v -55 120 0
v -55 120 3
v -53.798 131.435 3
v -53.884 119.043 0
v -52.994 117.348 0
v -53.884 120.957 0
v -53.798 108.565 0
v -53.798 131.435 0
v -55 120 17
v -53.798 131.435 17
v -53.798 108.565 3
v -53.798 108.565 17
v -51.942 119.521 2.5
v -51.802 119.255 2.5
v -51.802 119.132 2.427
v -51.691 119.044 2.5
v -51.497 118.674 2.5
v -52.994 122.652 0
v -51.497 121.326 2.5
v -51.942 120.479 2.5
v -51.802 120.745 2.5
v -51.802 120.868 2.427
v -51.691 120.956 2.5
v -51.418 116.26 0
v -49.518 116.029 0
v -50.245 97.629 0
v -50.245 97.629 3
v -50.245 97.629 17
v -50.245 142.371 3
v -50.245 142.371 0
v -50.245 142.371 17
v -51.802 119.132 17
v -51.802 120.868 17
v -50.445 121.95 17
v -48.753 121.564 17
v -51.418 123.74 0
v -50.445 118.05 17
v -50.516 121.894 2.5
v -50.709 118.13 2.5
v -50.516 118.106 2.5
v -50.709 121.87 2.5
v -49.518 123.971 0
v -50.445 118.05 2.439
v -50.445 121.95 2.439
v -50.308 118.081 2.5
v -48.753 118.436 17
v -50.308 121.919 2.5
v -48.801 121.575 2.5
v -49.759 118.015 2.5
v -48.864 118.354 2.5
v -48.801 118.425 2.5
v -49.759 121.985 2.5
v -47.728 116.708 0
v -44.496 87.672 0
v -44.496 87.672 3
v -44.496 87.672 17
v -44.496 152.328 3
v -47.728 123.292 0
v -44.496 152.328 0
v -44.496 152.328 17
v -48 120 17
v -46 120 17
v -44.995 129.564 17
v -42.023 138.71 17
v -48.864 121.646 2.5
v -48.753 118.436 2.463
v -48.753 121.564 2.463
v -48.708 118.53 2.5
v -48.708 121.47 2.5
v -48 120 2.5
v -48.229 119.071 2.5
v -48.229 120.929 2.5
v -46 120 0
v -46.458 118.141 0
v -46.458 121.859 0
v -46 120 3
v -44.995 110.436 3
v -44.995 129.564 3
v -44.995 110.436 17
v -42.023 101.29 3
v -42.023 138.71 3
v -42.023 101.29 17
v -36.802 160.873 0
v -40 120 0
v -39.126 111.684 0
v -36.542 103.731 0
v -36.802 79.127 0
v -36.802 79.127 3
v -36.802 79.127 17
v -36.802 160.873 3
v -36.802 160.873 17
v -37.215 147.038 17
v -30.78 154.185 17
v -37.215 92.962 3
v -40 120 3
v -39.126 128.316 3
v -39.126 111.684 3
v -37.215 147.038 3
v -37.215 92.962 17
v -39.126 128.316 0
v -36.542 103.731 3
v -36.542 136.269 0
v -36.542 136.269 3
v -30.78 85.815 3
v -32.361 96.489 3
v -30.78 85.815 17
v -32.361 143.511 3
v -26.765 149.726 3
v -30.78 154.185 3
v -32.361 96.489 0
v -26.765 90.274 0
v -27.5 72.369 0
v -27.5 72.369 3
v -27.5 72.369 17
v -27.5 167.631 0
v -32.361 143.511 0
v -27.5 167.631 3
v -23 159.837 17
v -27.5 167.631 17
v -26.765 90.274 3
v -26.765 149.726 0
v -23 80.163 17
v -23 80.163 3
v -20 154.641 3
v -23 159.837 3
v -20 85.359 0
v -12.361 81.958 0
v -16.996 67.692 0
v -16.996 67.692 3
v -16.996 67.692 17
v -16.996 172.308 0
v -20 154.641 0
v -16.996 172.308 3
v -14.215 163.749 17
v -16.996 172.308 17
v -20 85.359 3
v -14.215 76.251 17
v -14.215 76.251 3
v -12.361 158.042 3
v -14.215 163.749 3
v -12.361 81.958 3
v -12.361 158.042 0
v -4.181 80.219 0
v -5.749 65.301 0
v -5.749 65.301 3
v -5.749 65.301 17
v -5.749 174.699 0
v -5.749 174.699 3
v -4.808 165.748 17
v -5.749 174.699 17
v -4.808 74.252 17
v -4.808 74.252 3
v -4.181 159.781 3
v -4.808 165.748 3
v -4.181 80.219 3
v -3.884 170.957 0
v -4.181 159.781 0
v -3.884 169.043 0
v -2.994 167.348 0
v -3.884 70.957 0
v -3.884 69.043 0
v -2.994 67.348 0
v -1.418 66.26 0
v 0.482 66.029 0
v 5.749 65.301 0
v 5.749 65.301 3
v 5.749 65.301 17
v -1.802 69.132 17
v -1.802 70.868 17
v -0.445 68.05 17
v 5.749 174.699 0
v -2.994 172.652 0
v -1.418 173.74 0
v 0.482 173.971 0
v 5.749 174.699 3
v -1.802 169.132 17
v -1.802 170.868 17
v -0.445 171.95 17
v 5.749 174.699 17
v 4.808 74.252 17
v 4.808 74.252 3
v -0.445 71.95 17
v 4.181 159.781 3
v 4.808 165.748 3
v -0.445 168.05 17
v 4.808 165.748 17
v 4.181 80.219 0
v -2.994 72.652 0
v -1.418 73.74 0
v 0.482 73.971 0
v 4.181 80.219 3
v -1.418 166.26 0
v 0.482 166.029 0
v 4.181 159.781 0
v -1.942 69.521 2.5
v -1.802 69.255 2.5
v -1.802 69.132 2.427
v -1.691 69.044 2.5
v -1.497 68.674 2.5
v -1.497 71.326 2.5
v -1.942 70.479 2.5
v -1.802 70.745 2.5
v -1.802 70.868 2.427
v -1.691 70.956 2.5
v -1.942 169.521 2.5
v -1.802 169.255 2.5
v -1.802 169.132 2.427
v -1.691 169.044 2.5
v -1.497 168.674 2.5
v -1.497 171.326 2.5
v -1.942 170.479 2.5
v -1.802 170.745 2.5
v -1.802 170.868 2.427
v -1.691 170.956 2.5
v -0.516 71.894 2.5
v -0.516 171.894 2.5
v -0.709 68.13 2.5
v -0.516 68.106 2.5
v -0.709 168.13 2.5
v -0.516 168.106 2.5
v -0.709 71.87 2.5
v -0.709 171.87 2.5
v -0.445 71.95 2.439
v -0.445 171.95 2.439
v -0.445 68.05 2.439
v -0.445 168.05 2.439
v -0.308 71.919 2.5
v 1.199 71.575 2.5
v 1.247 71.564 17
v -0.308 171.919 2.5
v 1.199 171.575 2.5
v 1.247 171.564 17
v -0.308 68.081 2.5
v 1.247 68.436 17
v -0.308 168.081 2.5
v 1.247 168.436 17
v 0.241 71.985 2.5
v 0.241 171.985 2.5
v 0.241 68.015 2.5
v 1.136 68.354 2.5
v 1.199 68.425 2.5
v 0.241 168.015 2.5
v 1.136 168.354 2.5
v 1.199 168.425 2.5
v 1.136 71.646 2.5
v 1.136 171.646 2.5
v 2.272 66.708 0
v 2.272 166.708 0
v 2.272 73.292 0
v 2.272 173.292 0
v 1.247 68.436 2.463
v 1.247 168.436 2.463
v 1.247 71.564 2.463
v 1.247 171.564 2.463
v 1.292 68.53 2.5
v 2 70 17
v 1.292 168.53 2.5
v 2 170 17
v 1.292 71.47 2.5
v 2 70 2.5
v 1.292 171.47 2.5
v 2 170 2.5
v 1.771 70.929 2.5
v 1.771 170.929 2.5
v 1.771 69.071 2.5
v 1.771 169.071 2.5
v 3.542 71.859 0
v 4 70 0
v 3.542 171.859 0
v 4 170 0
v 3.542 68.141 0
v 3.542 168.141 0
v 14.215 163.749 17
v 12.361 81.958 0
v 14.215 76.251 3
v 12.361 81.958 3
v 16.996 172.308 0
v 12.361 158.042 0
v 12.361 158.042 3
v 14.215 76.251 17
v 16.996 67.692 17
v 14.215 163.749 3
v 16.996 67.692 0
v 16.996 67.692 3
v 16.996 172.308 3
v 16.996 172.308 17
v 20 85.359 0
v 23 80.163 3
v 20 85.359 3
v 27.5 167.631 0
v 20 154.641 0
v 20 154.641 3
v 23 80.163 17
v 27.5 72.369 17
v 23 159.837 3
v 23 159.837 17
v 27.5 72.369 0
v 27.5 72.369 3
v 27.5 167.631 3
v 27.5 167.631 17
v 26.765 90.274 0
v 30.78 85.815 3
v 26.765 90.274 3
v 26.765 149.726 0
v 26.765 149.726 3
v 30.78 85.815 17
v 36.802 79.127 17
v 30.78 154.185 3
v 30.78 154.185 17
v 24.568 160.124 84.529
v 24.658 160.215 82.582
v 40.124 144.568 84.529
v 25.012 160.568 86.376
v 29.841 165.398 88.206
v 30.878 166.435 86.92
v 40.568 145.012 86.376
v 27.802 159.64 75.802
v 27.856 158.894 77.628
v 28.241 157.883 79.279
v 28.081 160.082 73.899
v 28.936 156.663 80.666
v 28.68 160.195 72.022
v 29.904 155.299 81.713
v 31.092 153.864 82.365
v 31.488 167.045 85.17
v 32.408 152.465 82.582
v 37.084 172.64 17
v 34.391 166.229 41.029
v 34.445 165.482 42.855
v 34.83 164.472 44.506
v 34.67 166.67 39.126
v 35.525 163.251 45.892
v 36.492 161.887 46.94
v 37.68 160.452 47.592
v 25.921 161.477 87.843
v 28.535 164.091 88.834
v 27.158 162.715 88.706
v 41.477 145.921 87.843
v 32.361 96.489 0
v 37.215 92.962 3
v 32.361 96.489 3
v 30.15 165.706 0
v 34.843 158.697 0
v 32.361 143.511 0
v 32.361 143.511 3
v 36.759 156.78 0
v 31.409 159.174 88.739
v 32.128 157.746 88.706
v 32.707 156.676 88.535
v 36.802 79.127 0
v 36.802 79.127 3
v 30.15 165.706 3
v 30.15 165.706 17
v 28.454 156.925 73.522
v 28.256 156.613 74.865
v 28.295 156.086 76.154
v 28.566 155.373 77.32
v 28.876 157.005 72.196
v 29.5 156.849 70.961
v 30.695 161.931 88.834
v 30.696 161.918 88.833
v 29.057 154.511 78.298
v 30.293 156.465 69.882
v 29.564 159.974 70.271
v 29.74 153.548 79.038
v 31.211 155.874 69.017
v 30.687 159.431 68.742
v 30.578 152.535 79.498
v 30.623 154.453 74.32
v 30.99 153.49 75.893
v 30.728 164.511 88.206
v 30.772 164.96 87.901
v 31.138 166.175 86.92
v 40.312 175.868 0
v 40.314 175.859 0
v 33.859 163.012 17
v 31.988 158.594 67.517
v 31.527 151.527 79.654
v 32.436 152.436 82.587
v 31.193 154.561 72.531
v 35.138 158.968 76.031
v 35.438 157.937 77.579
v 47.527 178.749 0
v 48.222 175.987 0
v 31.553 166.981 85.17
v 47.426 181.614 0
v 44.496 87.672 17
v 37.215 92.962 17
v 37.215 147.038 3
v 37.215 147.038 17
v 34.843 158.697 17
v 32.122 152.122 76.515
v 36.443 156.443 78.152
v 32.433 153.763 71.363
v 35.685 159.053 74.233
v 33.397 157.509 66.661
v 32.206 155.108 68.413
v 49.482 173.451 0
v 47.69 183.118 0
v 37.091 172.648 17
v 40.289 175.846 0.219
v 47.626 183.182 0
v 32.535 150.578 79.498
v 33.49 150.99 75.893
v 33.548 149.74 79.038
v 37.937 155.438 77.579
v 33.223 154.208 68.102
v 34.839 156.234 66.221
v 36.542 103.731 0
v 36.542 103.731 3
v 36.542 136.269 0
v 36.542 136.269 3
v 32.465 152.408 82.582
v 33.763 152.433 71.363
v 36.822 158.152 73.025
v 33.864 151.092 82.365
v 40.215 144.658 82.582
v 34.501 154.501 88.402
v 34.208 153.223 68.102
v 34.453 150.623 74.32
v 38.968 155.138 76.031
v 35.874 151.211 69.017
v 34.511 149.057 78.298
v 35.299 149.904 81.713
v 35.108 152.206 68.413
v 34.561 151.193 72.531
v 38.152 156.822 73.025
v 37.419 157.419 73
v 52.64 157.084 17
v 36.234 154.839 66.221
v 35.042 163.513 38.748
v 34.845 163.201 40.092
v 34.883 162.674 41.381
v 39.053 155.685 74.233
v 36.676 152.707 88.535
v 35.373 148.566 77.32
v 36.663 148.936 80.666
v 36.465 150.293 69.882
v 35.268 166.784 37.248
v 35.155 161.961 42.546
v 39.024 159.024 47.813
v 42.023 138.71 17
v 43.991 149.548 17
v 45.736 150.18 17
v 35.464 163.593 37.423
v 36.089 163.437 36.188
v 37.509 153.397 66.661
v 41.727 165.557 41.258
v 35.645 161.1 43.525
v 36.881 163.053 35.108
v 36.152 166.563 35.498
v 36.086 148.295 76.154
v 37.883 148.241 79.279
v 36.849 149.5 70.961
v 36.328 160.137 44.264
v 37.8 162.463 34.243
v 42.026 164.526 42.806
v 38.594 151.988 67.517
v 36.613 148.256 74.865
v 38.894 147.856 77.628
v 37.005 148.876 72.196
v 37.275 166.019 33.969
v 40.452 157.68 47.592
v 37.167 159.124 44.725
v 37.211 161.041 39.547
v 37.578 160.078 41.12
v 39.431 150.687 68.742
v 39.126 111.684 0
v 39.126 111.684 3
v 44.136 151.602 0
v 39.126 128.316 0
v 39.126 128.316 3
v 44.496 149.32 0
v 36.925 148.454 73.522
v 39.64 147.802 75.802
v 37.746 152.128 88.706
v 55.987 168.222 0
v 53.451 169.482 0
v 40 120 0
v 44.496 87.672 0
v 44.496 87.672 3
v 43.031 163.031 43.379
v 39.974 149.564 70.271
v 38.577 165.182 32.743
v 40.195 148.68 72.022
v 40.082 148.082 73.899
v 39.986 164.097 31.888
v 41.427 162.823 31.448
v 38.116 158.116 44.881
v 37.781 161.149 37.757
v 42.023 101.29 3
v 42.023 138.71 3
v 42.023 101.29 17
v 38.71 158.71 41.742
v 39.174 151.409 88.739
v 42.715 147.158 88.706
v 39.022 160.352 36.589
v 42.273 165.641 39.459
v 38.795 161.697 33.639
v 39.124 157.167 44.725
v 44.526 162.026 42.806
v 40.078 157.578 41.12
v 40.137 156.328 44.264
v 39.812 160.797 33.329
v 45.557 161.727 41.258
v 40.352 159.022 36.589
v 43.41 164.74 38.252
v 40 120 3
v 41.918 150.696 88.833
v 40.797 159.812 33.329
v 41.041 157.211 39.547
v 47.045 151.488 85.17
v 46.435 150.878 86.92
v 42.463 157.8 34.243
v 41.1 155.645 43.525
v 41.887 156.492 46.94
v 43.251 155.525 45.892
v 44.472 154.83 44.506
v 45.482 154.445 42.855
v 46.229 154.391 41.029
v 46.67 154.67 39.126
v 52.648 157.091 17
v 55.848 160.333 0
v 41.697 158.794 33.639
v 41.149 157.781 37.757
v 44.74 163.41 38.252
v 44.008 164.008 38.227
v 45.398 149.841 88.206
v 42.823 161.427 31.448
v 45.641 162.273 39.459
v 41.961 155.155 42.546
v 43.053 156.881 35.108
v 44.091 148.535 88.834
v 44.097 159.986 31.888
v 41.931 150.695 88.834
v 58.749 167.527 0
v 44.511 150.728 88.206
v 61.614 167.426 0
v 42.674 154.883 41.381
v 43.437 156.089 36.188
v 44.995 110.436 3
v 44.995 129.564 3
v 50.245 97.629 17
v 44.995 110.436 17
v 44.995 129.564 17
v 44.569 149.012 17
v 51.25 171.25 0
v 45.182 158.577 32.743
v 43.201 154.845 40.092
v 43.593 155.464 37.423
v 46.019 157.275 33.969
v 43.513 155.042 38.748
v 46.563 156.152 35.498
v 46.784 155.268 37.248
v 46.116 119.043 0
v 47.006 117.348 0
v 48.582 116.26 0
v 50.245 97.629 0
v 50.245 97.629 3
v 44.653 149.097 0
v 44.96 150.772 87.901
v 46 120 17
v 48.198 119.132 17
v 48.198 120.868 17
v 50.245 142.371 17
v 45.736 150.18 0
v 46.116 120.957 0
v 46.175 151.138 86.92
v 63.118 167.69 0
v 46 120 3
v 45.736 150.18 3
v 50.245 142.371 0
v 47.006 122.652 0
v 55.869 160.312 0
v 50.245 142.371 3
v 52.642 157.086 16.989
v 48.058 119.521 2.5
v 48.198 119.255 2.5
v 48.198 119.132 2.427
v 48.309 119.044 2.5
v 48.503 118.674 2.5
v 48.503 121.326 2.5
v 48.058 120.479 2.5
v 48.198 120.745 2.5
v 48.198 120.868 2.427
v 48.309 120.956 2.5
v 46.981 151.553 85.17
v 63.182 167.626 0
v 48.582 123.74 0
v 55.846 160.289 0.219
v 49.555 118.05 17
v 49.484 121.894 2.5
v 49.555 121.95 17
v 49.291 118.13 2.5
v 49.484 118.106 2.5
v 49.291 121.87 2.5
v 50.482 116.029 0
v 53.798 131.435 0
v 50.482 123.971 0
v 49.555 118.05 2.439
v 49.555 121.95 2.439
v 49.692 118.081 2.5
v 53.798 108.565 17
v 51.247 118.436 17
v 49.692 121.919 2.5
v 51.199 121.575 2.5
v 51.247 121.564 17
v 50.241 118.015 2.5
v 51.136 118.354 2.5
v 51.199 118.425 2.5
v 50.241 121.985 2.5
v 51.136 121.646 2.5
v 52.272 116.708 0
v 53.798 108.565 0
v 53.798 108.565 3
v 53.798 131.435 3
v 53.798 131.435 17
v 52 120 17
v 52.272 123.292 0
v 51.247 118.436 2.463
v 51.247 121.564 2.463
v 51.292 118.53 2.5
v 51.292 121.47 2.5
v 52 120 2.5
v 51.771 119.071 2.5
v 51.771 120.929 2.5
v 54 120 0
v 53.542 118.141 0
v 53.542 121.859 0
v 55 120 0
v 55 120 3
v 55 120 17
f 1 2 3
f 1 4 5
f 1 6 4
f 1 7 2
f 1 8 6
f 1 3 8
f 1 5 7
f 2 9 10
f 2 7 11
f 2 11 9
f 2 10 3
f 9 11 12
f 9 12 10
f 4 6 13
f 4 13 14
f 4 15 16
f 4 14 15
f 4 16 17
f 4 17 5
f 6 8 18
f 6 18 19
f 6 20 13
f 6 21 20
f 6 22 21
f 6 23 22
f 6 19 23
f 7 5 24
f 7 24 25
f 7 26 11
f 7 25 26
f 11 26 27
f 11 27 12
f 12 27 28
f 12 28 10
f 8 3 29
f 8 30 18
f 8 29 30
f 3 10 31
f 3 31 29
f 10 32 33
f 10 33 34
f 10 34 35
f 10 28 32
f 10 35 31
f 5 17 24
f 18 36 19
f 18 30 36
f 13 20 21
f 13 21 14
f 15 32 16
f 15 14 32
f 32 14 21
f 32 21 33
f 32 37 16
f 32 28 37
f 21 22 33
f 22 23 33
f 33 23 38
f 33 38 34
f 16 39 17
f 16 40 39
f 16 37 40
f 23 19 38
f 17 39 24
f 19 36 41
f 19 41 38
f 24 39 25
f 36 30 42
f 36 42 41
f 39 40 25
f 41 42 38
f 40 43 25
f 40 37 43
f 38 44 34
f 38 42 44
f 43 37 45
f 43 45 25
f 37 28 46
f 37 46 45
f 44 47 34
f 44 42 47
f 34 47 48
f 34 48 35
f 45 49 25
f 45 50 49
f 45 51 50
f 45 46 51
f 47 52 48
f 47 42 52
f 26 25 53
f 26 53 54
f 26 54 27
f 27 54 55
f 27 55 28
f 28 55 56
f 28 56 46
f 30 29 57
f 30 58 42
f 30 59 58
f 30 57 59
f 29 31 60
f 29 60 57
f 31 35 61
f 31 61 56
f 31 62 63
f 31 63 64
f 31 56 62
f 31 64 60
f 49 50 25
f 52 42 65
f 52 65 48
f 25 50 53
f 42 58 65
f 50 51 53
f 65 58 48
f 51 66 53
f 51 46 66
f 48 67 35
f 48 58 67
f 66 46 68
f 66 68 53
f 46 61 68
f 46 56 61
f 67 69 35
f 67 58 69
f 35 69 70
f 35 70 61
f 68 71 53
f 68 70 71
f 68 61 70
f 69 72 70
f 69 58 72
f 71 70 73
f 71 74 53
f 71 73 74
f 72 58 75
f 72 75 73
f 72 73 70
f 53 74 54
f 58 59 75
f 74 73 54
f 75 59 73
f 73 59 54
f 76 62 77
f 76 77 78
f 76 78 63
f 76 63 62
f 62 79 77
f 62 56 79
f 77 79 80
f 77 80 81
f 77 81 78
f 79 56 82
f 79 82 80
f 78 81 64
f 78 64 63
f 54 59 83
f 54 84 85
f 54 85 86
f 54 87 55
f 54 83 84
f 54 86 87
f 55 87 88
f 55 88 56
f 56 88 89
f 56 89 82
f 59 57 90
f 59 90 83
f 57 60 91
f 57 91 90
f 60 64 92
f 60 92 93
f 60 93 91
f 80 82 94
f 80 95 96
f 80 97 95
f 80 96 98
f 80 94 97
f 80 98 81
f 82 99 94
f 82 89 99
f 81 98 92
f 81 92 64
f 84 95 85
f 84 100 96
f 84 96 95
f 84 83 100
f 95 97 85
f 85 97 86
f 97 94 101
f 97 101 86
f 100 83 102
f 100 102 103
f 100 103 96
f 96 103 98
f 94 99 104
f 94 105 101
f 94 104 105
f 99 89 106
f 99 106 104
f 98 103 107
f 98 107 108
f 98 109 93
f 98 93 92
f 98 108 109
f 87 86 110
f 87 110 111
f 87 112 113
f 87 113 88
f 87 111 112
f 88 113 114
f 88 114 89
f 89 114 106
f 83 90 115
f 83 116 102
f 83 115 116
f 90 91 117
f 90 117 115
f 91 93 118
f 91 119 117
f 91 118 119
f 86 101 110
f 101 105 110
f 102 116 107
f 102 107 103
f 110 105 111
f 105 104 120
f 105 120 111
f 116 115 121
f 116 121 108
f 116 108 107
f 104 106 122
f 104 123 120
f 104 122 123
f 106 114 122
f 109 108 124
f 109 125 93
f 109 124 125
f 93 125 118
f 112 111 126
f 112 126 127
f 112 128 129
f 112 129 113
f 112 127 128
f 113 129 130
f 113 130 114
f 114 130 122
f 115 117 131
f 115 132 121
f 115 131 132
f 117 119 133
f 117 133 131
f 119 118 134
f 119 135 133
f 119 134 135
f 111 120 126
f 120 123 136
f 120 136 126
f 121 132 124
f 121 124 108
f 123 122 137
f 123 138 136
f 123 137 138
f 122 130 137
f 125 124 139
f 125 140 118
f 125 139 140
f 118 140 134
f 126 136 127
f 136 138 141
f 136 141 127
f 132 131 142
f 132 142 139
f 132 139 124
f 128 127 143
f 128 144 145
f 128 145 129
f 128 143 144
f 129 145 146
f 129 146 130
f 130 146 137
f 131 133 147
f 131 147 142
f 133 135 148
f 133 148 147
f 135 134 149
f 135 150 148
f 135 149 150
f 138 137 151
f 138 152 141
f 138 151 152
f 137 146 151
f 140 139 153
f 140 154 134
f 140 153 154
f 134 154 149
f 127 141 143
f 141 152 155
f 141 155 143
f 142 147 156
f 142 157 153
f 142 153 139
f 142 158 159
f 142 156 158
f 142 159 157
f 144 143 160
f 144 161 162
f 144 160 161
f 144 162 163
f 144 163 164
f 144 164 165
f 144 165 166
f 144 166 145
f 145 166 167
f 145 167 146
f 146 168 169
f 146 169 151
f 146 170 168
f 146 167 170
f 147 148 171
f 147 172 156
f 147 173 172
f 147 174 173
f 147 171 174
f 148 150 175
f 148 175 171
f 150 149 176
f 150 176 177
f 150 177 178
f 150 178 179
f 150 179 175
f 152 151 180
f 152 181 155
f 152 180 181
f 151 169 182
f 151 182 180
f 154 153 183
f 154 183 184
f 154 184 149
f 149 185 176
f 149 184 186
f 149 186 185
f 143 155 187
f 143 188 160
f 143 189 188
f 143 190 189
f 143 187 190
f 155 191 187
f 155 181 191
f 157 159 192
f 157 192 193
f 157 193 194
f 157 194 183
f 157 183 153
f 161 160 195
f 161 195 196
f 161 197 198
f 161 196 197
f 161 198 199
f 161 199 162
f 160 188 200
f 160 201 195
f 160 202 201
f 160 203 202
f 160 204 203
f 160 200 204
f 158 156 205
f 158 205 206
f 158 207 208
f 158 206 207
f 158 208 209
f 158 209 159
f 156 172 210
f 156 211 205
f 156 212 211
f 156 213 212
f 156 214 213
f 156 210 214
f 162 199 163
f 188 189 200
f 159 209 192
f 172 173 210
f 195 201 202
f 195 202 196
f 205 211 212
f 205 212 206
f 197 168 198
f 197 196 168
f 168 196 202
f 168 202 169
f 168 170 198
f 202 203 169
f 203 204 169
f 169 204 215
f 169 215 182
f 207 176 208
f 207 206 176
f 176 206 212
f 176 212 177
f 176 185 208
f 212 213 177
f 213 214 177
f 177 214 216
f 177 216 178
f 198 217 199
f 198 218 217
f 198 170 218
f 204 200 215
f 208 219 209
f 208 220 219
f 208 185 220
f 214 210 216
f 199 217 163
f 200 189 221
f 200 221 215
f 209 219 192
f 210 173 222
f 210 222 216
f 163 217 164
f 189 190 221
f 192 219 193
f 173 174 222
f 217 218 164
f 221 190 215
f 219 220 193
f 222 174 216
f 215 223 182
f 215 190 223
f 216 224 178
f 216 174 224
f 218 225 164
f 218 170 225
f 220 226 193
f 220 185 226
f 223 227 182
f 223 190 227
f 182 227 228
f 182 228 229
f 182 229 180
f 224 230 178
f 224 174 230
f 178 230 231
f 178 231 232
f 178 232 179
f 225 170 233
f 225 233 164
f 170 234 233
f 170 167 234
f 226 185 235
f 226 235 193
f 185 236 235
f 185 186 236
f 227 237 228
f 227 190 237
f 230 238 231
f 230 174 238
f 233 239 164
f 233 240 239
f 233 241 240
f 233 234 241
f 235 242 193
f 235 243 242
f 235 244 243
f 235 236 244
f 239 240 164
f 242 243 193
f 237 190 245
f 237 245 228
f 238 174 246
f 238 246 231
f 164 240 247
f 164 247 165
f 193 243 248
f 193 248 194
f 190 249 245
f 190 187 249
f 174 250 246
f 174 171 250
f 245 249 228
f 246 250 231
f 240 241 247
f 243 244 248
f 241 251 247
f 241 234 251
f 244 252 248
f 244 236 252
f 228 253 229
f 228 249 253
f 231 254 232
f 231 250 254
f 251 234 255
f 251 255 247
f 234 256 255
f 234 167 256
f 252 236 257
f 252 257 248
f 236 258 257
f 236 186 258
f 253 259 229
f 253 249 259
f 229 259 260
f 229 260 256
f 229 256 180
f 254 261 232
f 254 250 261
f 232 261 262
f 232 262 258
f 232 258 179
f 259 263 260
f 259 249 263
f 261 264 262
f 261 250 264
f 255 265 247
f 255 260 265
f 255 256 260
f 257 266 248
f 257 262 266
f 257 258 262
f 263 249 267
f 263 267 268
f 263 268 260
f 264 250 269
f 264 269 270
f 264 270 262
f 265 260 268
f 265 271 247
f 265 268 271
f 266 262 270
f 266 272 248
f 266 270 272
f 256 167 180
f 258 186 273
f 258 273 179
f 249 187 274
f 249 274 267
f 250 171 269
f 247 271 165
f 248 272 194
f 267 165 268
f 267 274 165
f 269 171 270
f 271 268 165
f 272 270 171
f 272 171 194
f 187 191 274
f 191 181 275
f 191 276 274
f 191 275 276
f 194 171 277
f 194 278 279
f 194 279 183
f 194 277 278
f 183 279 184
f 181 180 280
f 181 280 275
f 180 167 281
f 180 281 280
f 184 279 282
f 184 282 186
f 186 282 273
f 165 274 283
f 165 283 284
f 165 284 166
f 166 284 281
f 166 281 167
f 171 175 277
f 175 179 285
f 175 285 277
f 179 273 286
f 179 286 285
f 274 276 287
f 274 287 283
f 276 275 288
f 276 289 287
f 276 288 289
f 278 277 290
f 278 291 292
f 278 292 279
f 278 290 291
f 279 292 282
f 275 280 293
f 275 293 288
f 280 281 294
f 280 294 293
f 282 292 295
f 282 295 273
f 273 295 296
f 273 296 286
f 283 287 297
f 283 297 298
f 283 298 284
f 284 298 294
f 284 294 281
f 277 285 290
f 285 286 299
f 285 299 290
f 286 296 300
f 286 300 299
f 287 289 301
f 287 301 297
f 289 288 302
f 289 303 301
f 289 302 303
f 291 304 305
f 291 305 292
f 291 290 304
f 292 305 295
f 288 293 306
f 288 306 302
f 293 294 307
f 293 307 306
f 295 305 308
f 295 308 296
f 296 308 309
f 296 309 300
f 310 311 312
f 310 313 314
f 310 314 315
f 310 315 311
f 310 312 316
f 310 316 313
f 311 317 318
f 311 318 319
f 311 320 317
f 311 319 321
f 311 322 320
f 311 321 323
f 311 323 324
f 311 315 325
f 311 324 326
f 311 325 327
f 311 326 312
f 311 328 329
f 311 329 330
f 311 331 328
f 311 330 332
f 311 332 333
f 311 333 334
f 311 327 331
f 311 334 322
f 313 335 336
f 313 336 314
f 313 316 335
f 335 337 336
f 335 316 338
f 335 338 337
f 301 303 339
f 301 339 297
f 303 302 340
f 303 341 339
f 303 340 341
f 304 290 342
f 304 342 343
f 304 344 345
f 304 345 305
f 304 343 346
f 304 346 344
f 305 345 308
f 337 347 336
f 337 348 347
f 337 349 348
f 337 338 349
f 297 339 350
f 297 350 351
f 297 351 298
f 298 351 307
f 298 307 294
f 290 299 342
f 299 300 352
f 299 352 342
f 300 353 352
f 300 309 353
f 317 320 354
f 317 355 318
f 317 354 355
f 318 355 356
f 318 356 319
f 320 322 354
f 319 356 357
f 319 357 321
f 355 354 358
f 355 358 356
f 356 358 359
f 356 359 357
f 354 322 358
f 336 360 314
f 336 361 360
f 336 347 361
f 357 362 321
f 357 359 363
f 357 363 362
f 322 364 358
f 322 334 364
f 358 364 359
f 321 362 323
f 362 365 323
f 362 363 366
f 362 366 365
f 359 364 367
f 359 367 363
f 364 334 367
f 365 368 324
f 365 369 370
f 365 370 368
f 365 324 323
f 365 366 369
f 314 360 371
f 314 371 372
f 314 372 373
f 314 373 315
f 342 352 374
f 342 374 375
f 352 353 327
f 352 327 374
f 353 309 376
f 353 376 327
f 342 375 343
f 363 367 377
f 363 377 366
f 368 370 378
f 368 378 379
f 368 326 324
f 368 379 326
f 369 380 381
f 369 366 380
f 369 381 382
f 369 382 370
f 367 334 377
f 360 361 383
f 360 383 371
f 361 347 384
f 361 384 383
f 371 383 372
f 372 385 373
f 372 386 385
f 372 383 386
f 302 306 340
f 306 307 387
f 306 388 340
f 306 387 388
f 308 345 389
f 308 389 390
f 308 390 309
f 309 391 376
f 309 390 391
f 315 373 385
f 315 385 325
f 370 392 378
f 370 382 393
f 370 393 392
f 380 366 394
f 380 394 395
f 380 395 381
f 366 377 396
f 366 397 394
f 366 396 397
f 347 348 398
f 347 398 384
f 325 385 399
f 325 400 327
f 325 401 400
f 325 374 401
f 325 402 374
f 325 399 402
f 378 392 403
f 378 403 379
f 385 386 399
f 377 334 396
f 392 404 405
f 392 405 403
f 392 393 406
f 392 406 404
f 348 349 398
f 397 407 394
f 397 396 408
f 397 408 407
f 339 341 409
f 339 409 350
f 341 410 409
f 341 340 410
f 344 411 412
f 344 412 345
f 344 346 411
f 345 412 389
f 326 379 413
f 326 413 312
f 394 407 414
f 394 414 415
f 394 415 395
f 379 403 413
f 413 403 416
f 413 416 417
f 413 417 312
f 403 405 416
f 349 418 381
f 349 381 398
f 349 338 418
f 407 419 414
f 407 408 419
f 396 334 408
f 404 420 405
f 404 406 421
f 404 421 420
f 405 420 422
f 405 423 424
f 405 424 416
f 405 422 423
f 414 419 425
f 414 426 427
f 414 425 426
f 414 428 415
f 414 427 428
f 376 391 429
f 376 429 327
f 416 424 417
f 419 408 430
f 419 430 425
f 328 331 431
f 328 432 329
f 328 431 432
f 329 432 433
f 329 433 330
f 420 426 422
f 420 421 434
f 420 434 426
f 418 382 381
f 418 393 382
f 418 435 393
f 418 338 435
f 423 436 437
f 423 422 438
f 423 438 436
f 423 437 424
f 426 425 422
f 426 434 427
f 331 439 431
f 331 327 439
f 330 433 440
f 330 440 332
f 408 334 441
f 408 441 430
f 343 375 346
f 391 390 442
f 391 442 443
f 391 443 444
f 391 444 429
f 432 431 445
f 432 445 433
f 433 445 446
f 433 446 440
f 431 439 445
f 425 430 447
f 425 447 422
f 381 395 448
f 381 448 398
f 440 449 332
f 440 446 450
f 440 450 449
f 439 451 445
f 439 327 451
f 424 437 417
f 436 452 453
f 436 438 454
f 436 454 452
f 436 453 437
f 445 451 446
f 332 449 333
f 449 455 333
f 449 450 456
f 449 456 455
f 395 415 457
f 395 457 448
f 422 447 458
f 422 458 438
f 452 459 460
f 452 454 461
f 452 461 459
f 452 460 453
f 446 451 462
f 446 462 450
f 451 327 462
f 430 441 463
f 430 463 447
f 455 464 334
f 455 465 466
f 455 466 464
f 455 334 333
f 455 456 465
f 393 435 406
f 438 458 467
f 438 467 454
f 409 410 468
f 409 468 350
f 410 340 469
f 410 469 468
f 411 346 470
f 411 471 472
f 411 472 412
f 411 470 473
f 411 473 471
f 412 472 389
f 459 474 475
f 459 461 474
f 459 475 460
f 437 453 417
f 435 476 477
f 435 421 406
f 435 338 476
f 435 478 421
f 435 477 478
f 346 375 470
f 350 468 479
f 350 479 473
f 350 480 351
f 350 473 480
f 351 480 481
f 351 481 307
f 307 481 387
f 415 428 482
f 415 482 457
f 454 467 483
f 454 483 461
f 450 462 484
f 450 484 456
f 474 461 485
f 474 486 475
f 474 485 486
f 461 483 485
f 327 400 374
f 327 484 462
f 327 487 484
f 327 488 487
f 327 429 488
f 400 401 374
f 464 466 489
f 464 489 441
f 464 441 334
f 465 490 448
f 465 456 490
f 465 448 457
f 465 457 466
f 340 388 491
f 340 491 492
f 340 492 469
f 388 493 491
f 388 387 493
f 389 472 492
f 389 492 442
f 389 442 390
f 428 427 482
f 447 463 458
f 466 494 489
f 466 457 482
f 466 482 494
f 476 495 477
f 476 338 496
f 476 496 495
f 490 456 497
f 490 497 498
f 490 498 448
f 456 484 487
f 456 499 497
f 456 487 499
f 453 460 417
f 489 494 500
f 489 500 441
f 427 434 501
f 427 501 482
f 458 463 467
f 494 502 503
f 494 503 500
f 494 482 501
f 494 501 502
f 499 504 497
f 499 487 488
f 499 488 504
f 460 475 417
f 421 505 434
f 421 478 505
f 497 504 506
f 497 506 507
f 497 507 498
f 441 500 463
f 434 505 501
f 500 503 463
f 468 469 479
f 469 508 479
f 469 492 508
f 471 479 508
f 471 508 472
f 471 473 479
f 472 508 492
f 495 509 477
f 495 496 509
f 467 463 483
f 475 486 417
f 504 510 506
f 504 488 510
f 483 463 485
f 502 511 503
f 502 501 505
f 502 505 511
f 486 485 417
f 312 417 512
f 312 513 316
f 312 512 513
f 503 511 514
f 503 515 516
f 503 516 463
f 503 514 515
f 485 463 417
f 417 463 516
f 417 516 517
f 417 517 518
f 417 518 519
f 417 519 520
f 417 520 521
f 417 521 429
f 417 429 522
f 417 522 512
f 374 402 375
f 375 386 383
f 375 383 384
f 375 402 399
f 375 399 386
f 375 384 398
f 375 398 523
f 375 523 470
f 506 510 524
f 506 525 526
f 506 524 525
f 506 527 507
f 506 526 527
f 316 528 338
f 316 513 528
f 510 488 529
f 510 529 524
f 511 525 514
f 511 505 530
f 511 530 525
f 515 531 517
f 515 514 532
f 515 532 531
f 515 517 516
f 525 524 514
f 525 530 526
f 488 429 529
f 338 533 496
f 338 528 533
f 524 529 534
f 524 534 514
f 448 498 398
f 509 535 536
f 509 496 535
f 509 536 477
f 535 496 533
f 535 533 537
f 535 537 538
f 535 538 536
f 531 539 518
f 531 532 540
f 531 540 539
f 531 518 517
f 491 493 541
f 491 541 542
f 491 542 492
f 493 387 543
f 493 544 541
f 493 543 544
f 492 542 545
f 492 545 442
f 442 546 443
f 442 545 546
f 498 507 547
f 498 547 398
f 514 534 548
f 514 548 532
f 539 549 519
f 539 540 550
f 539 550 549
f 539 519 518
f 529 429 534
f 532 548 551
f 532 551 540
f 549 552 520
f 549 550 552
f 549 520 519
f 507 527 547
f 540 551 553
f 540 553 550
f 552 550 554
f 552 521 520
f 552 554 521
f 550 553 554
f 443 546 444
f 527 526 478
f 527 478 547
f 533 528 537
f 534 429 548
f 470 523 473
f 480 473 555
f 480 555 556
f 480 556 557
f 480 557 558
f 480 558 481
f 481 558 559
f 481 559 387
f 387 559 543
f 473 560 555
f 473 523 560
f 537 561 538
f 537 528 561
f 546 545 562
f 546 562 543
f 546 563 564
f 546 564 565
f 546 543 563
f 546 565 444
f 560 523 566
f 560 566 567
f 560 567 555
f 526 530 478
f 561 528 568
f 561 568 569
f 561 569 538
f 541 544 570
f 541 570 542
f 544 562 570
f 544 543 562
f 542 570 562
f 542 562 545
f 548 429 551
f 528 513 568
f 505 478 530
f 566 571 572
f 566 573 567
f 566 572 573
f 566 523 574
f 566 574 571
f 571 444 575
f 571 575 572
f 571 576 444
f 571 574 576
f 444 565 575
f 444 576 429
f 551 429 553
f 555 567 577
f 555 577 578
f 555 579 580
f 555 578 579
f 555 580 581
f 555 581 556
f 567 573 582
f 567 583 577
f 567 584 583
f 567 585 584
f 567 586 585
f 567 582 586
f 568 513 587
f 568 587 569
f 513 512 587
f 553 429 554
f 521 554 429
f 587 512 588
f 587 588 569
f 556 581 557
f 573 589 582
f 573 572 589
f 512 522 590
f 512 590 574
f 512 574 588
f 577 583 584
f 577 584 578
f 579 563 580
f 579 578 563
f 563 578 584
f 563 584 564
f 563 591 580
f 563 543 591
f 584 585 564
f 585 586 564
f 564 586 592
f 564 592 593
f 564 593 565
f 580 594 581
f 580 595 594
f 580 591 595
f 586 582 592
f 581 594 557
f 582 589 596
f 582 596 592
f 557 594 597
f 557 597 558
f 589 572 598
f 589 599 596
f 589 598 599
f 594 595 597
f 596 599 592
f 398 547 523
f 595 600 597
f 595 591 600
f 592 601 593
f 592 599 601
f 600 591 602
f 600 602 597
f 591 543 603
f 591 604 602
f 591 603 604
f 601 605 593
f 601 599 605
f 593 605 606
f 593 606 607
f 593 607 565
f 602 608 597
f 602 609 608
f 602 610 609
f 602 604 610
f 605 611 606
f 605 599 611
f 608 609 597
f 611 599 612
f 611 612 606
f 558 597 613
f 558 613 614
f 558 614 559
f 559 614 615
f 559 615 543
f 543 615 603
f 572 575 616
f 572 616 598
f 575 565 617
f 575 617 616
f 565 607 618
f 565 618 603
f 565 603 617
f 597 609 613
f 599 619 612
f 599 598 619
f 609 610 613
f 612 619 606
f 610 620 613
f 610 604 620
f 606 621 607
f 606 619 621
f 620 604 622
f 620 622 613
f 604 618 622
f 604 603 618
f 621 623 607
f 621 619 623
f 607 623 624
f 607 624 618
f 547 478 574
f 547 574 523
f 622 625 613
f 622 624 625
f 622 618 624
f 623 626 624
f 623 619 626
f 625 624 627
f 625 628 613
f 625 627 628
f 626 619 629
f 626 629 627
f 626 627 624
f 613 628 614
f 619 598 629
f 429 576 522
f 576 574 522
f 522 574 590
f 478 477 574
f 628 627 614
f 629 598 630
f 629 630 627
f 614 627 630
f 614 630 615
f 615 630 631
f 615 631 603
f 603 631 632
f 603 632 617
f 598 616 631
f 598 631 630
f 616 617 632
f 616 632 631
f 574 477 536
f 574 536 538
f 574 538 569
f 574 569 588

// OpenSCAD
// Parametry pokrywki
cover_outer_diameter = 110;
cover_outer_radius = cover_outer_diameter / 2;
cover_inner_diameter = 92;
cover_inner_radius = cover_inner_diameter / 2;
cover_top_thickness = 3;
cover_inner_depth = 14;
cover_total_height = cover_top_thickness + cover_inner_depth;
cover_hole_diameter = 4;
cover_hole_radius = cover_hole_diameter / 2;
countersink_diameter = 8;
countersink_radius = countersink_diameter / 2;
countersink_depth = 2;
top_hole_diameter = 80;
top_hole_radius = top_hole_diameter / 2;
cover_hole_radius_from_center = 50;
num_holes = 4;

// Parametry elementu mocującego (na pokrywce)
mount_angle = 45; // pozycja kątowa wokół pokrywki, między dwoma otworami montażowymi
mount_gap = 13; // odsunięcie od ściany pokrywki
mount_width = 22;
mount_depth = 10;
mount_height = 90; // wysokość końcowa, od płaskiej góry do dołu
mount_tilt = 15; // nachylenie do osi pokrywki, w stopniach
mount_concave_r = 13.5; // promień wklęsłości ściany zewnętrznej
mount_hole_d = 5.5;
mount_inner_boss_r = 6; // promień wysepki wzmacniającej material wokół otworów (po stronie wewnętrznej)
mount_inner_boss_base_r = 8.5; // promień podstawy wysepki wzmacniającej material wokół otworów (po stronie wewnętrznej)
mount_inner_boss_len = 2; // o tyle wysepka wystaje od plaskiej, wewnetrznej sciany
mount_hole_z1 = -41; // położenie (we własnej, nieobróconej osi) pierwszego otworu
mount_hole_z2 = -77; // położenie drugiego otworu
mount_margin_top = 15; // naddatek materiału nad punktem obrotu, przycinany do płaskiej góry
mount_r_round = mount_depth / 2; // promień zaokrąglenia dolnej ściany

// Wysokość (przed obrotem) taka, by po nachyleniu dolny-zewnętrzny róg wypadł
// dokładnie na mount_height od płaskiej, przyciętej góry
mount_H = (mount_height - mount_depth * sin(mount_tilt)) / cos(mount_tilt);

// Oś walca wklęsłości ściany zewnętrznej - przechodzi przez krawędzie (Y = ±width/2)
mount_dish_axis_x = mount_depth + sqrt(mount_concave_r*mount_concave_r - (mount_width/2)*(mount_width/2));

module mount_screw_hole(z) {
    translate([0, 0, z]) rotate([0, 90, 0])
        translate([0, 0, -(mount_inner_boss_len + 2)])
        cylinder(h = mount_inner_boss_len + 32, r = mount_hole_d / 2);
}

// Wysepka wzmacniająca materiał wokół otworu, po stronie wewnętrznej (płaskiej)
module mount_inner_boss(z) {
    translate([-mount_inner_boss_len, 0, z]) rotate([0, 90, 0])
        cylinder(h = mount_inner_boss_len, r1 = mount_inner_boss_r, r2 = mount_inner_boss_base_r);
}

// Element mocujący: prostopadłościan nachylony do osi pokrywki, z płaską,
// przyciętą górą (współpłaszczyznową z górą pokrywki), zaokrąglonym dołem,
// wklęsłą ścianą zewnętrzną i dwoma otworami na wkręty
module mount_tab() {
    intersection() {
        rotate([0, mount_tilt, 0])
            difference() {
                union() {
                    translate([0, -mount_width/2, -mount_H + mount_r_round])
                        cube([mount_depth, mount_width, (mount_H - mount_r_round) + mount_margin_top]);
                    translate([mount_depth/2, 0, -mount_H + mount_r_round])
                        rotate([-90, 0, 0])
                        cylinder(h = mount_width, r = mount_r_round, center = true);
                    mount_inner_boss(mount_hole_z1);
                    mount_inner_boss(mount_hole_z2);
                }
                // Wklęsła ściana zewnętrzna
                translate([mount_dish_axis_x, 0, -mount_H - 20])
                    cylinder(h = mount_H + mount_margin_top + 40, r = mount_concave_r);
                mount_screw_hole(mount_hole_z1);
                mount_screw_hole(mount_hole_z2);
            }
        // Przycięcie do płaskiej góry, współpłaszczyznowej z górą pokrywki
        translate([-1000, -1000, -3000])
            cube([2000, 2000, 3000]);
    }
}

// Wypełnienie pomiędzy elementem mocującym a ścianą pokrywki (tylko na wysokości,
// na której ścianka pokrywki fizycznie istnieje)
module mount_fill() {
    top_z = 0;
    bot_z = -cover_total_height;
    eps = 0.1;
    overlap = 3; // wnikanie w istniejacą ściankę pokrywki, by zagwarantować zlączenie w jedną objętość
    hull() {
        translate([-mount_gap - overlap, -mount_width/2, top_z - eps])
            cube([mount_gap + overlap + 0.01, mount_width, eps]);
        translate([-mount_gap - overlap, -mount_width/2, bot_z])
            cube([(bot_z * tan(mount_tilt)) + mount_gap + overlap + 0.01, mount_width, eps]);
    }
}

// Pokrywka
translate([0, 120, 0]) {
    difference() {
        // Część stała pokrywki
        union() {
            // Górna część (płaska)
            cylinder(h = cover_top_thickness, r = cover_outer_radius, center = false);

            // Dolna część (ścianki)
            translate([0, 0, cover_top_thickness])
                cylinder(h = cover_inner_depth, r = cover_outer_radius, center = false);
        }

        // Wewnętrzna wnęka
        translate([0, 0, cover_top_thickness])
            cylinder(h = cover_inner_depth, r = cover_inner_radius, center = false);

        // Okrągły otwór z góry (80mm)
        translate([0, 0, -0.5])
            cylinder(h = cover_top_thickness + 1, r = top_hole_radius, center = false);

        // Cztery otwory do wkrętów
        for (i = [0:num_holes-1]) {
            angle = i * 360 / num_holes;
            x = cover_hole_radius_from_center * cos(angle);
            y = cover_hole_radius_from_center * sin(angle);

            // Otwór główny: 4mm średnicy na większości długości
            translate([x, y, 0])
                cylinder(h = cover_total_height, r = cover_hole_radius, center = false);

            // Pogłębienie stożkowe: na ostatnich 2.5mm zmienia się od 4mm do 7mm
            translate([x, y, 0])
                cylinder(h = 2.5, r1 = countersink_radius, r2 = cover_hole_radius, center = false);
        }
    }

    // Element mocujący, nachylony w stronę osi pokrywki, umieszczony między
    // dwoma istniejącymi otworami montażowymi (mirror koryguje odwrócony
    // układ Z pokrywki na modelu względem orientacji rzeczywistej)
    rotate([0, 0, mount_angle])
        translate([cover_outer_radius + mount_gap, 0, 0])
        mirror([0, 0, 1]) {
            mount_tab();
            mount_fill();
        }
}
